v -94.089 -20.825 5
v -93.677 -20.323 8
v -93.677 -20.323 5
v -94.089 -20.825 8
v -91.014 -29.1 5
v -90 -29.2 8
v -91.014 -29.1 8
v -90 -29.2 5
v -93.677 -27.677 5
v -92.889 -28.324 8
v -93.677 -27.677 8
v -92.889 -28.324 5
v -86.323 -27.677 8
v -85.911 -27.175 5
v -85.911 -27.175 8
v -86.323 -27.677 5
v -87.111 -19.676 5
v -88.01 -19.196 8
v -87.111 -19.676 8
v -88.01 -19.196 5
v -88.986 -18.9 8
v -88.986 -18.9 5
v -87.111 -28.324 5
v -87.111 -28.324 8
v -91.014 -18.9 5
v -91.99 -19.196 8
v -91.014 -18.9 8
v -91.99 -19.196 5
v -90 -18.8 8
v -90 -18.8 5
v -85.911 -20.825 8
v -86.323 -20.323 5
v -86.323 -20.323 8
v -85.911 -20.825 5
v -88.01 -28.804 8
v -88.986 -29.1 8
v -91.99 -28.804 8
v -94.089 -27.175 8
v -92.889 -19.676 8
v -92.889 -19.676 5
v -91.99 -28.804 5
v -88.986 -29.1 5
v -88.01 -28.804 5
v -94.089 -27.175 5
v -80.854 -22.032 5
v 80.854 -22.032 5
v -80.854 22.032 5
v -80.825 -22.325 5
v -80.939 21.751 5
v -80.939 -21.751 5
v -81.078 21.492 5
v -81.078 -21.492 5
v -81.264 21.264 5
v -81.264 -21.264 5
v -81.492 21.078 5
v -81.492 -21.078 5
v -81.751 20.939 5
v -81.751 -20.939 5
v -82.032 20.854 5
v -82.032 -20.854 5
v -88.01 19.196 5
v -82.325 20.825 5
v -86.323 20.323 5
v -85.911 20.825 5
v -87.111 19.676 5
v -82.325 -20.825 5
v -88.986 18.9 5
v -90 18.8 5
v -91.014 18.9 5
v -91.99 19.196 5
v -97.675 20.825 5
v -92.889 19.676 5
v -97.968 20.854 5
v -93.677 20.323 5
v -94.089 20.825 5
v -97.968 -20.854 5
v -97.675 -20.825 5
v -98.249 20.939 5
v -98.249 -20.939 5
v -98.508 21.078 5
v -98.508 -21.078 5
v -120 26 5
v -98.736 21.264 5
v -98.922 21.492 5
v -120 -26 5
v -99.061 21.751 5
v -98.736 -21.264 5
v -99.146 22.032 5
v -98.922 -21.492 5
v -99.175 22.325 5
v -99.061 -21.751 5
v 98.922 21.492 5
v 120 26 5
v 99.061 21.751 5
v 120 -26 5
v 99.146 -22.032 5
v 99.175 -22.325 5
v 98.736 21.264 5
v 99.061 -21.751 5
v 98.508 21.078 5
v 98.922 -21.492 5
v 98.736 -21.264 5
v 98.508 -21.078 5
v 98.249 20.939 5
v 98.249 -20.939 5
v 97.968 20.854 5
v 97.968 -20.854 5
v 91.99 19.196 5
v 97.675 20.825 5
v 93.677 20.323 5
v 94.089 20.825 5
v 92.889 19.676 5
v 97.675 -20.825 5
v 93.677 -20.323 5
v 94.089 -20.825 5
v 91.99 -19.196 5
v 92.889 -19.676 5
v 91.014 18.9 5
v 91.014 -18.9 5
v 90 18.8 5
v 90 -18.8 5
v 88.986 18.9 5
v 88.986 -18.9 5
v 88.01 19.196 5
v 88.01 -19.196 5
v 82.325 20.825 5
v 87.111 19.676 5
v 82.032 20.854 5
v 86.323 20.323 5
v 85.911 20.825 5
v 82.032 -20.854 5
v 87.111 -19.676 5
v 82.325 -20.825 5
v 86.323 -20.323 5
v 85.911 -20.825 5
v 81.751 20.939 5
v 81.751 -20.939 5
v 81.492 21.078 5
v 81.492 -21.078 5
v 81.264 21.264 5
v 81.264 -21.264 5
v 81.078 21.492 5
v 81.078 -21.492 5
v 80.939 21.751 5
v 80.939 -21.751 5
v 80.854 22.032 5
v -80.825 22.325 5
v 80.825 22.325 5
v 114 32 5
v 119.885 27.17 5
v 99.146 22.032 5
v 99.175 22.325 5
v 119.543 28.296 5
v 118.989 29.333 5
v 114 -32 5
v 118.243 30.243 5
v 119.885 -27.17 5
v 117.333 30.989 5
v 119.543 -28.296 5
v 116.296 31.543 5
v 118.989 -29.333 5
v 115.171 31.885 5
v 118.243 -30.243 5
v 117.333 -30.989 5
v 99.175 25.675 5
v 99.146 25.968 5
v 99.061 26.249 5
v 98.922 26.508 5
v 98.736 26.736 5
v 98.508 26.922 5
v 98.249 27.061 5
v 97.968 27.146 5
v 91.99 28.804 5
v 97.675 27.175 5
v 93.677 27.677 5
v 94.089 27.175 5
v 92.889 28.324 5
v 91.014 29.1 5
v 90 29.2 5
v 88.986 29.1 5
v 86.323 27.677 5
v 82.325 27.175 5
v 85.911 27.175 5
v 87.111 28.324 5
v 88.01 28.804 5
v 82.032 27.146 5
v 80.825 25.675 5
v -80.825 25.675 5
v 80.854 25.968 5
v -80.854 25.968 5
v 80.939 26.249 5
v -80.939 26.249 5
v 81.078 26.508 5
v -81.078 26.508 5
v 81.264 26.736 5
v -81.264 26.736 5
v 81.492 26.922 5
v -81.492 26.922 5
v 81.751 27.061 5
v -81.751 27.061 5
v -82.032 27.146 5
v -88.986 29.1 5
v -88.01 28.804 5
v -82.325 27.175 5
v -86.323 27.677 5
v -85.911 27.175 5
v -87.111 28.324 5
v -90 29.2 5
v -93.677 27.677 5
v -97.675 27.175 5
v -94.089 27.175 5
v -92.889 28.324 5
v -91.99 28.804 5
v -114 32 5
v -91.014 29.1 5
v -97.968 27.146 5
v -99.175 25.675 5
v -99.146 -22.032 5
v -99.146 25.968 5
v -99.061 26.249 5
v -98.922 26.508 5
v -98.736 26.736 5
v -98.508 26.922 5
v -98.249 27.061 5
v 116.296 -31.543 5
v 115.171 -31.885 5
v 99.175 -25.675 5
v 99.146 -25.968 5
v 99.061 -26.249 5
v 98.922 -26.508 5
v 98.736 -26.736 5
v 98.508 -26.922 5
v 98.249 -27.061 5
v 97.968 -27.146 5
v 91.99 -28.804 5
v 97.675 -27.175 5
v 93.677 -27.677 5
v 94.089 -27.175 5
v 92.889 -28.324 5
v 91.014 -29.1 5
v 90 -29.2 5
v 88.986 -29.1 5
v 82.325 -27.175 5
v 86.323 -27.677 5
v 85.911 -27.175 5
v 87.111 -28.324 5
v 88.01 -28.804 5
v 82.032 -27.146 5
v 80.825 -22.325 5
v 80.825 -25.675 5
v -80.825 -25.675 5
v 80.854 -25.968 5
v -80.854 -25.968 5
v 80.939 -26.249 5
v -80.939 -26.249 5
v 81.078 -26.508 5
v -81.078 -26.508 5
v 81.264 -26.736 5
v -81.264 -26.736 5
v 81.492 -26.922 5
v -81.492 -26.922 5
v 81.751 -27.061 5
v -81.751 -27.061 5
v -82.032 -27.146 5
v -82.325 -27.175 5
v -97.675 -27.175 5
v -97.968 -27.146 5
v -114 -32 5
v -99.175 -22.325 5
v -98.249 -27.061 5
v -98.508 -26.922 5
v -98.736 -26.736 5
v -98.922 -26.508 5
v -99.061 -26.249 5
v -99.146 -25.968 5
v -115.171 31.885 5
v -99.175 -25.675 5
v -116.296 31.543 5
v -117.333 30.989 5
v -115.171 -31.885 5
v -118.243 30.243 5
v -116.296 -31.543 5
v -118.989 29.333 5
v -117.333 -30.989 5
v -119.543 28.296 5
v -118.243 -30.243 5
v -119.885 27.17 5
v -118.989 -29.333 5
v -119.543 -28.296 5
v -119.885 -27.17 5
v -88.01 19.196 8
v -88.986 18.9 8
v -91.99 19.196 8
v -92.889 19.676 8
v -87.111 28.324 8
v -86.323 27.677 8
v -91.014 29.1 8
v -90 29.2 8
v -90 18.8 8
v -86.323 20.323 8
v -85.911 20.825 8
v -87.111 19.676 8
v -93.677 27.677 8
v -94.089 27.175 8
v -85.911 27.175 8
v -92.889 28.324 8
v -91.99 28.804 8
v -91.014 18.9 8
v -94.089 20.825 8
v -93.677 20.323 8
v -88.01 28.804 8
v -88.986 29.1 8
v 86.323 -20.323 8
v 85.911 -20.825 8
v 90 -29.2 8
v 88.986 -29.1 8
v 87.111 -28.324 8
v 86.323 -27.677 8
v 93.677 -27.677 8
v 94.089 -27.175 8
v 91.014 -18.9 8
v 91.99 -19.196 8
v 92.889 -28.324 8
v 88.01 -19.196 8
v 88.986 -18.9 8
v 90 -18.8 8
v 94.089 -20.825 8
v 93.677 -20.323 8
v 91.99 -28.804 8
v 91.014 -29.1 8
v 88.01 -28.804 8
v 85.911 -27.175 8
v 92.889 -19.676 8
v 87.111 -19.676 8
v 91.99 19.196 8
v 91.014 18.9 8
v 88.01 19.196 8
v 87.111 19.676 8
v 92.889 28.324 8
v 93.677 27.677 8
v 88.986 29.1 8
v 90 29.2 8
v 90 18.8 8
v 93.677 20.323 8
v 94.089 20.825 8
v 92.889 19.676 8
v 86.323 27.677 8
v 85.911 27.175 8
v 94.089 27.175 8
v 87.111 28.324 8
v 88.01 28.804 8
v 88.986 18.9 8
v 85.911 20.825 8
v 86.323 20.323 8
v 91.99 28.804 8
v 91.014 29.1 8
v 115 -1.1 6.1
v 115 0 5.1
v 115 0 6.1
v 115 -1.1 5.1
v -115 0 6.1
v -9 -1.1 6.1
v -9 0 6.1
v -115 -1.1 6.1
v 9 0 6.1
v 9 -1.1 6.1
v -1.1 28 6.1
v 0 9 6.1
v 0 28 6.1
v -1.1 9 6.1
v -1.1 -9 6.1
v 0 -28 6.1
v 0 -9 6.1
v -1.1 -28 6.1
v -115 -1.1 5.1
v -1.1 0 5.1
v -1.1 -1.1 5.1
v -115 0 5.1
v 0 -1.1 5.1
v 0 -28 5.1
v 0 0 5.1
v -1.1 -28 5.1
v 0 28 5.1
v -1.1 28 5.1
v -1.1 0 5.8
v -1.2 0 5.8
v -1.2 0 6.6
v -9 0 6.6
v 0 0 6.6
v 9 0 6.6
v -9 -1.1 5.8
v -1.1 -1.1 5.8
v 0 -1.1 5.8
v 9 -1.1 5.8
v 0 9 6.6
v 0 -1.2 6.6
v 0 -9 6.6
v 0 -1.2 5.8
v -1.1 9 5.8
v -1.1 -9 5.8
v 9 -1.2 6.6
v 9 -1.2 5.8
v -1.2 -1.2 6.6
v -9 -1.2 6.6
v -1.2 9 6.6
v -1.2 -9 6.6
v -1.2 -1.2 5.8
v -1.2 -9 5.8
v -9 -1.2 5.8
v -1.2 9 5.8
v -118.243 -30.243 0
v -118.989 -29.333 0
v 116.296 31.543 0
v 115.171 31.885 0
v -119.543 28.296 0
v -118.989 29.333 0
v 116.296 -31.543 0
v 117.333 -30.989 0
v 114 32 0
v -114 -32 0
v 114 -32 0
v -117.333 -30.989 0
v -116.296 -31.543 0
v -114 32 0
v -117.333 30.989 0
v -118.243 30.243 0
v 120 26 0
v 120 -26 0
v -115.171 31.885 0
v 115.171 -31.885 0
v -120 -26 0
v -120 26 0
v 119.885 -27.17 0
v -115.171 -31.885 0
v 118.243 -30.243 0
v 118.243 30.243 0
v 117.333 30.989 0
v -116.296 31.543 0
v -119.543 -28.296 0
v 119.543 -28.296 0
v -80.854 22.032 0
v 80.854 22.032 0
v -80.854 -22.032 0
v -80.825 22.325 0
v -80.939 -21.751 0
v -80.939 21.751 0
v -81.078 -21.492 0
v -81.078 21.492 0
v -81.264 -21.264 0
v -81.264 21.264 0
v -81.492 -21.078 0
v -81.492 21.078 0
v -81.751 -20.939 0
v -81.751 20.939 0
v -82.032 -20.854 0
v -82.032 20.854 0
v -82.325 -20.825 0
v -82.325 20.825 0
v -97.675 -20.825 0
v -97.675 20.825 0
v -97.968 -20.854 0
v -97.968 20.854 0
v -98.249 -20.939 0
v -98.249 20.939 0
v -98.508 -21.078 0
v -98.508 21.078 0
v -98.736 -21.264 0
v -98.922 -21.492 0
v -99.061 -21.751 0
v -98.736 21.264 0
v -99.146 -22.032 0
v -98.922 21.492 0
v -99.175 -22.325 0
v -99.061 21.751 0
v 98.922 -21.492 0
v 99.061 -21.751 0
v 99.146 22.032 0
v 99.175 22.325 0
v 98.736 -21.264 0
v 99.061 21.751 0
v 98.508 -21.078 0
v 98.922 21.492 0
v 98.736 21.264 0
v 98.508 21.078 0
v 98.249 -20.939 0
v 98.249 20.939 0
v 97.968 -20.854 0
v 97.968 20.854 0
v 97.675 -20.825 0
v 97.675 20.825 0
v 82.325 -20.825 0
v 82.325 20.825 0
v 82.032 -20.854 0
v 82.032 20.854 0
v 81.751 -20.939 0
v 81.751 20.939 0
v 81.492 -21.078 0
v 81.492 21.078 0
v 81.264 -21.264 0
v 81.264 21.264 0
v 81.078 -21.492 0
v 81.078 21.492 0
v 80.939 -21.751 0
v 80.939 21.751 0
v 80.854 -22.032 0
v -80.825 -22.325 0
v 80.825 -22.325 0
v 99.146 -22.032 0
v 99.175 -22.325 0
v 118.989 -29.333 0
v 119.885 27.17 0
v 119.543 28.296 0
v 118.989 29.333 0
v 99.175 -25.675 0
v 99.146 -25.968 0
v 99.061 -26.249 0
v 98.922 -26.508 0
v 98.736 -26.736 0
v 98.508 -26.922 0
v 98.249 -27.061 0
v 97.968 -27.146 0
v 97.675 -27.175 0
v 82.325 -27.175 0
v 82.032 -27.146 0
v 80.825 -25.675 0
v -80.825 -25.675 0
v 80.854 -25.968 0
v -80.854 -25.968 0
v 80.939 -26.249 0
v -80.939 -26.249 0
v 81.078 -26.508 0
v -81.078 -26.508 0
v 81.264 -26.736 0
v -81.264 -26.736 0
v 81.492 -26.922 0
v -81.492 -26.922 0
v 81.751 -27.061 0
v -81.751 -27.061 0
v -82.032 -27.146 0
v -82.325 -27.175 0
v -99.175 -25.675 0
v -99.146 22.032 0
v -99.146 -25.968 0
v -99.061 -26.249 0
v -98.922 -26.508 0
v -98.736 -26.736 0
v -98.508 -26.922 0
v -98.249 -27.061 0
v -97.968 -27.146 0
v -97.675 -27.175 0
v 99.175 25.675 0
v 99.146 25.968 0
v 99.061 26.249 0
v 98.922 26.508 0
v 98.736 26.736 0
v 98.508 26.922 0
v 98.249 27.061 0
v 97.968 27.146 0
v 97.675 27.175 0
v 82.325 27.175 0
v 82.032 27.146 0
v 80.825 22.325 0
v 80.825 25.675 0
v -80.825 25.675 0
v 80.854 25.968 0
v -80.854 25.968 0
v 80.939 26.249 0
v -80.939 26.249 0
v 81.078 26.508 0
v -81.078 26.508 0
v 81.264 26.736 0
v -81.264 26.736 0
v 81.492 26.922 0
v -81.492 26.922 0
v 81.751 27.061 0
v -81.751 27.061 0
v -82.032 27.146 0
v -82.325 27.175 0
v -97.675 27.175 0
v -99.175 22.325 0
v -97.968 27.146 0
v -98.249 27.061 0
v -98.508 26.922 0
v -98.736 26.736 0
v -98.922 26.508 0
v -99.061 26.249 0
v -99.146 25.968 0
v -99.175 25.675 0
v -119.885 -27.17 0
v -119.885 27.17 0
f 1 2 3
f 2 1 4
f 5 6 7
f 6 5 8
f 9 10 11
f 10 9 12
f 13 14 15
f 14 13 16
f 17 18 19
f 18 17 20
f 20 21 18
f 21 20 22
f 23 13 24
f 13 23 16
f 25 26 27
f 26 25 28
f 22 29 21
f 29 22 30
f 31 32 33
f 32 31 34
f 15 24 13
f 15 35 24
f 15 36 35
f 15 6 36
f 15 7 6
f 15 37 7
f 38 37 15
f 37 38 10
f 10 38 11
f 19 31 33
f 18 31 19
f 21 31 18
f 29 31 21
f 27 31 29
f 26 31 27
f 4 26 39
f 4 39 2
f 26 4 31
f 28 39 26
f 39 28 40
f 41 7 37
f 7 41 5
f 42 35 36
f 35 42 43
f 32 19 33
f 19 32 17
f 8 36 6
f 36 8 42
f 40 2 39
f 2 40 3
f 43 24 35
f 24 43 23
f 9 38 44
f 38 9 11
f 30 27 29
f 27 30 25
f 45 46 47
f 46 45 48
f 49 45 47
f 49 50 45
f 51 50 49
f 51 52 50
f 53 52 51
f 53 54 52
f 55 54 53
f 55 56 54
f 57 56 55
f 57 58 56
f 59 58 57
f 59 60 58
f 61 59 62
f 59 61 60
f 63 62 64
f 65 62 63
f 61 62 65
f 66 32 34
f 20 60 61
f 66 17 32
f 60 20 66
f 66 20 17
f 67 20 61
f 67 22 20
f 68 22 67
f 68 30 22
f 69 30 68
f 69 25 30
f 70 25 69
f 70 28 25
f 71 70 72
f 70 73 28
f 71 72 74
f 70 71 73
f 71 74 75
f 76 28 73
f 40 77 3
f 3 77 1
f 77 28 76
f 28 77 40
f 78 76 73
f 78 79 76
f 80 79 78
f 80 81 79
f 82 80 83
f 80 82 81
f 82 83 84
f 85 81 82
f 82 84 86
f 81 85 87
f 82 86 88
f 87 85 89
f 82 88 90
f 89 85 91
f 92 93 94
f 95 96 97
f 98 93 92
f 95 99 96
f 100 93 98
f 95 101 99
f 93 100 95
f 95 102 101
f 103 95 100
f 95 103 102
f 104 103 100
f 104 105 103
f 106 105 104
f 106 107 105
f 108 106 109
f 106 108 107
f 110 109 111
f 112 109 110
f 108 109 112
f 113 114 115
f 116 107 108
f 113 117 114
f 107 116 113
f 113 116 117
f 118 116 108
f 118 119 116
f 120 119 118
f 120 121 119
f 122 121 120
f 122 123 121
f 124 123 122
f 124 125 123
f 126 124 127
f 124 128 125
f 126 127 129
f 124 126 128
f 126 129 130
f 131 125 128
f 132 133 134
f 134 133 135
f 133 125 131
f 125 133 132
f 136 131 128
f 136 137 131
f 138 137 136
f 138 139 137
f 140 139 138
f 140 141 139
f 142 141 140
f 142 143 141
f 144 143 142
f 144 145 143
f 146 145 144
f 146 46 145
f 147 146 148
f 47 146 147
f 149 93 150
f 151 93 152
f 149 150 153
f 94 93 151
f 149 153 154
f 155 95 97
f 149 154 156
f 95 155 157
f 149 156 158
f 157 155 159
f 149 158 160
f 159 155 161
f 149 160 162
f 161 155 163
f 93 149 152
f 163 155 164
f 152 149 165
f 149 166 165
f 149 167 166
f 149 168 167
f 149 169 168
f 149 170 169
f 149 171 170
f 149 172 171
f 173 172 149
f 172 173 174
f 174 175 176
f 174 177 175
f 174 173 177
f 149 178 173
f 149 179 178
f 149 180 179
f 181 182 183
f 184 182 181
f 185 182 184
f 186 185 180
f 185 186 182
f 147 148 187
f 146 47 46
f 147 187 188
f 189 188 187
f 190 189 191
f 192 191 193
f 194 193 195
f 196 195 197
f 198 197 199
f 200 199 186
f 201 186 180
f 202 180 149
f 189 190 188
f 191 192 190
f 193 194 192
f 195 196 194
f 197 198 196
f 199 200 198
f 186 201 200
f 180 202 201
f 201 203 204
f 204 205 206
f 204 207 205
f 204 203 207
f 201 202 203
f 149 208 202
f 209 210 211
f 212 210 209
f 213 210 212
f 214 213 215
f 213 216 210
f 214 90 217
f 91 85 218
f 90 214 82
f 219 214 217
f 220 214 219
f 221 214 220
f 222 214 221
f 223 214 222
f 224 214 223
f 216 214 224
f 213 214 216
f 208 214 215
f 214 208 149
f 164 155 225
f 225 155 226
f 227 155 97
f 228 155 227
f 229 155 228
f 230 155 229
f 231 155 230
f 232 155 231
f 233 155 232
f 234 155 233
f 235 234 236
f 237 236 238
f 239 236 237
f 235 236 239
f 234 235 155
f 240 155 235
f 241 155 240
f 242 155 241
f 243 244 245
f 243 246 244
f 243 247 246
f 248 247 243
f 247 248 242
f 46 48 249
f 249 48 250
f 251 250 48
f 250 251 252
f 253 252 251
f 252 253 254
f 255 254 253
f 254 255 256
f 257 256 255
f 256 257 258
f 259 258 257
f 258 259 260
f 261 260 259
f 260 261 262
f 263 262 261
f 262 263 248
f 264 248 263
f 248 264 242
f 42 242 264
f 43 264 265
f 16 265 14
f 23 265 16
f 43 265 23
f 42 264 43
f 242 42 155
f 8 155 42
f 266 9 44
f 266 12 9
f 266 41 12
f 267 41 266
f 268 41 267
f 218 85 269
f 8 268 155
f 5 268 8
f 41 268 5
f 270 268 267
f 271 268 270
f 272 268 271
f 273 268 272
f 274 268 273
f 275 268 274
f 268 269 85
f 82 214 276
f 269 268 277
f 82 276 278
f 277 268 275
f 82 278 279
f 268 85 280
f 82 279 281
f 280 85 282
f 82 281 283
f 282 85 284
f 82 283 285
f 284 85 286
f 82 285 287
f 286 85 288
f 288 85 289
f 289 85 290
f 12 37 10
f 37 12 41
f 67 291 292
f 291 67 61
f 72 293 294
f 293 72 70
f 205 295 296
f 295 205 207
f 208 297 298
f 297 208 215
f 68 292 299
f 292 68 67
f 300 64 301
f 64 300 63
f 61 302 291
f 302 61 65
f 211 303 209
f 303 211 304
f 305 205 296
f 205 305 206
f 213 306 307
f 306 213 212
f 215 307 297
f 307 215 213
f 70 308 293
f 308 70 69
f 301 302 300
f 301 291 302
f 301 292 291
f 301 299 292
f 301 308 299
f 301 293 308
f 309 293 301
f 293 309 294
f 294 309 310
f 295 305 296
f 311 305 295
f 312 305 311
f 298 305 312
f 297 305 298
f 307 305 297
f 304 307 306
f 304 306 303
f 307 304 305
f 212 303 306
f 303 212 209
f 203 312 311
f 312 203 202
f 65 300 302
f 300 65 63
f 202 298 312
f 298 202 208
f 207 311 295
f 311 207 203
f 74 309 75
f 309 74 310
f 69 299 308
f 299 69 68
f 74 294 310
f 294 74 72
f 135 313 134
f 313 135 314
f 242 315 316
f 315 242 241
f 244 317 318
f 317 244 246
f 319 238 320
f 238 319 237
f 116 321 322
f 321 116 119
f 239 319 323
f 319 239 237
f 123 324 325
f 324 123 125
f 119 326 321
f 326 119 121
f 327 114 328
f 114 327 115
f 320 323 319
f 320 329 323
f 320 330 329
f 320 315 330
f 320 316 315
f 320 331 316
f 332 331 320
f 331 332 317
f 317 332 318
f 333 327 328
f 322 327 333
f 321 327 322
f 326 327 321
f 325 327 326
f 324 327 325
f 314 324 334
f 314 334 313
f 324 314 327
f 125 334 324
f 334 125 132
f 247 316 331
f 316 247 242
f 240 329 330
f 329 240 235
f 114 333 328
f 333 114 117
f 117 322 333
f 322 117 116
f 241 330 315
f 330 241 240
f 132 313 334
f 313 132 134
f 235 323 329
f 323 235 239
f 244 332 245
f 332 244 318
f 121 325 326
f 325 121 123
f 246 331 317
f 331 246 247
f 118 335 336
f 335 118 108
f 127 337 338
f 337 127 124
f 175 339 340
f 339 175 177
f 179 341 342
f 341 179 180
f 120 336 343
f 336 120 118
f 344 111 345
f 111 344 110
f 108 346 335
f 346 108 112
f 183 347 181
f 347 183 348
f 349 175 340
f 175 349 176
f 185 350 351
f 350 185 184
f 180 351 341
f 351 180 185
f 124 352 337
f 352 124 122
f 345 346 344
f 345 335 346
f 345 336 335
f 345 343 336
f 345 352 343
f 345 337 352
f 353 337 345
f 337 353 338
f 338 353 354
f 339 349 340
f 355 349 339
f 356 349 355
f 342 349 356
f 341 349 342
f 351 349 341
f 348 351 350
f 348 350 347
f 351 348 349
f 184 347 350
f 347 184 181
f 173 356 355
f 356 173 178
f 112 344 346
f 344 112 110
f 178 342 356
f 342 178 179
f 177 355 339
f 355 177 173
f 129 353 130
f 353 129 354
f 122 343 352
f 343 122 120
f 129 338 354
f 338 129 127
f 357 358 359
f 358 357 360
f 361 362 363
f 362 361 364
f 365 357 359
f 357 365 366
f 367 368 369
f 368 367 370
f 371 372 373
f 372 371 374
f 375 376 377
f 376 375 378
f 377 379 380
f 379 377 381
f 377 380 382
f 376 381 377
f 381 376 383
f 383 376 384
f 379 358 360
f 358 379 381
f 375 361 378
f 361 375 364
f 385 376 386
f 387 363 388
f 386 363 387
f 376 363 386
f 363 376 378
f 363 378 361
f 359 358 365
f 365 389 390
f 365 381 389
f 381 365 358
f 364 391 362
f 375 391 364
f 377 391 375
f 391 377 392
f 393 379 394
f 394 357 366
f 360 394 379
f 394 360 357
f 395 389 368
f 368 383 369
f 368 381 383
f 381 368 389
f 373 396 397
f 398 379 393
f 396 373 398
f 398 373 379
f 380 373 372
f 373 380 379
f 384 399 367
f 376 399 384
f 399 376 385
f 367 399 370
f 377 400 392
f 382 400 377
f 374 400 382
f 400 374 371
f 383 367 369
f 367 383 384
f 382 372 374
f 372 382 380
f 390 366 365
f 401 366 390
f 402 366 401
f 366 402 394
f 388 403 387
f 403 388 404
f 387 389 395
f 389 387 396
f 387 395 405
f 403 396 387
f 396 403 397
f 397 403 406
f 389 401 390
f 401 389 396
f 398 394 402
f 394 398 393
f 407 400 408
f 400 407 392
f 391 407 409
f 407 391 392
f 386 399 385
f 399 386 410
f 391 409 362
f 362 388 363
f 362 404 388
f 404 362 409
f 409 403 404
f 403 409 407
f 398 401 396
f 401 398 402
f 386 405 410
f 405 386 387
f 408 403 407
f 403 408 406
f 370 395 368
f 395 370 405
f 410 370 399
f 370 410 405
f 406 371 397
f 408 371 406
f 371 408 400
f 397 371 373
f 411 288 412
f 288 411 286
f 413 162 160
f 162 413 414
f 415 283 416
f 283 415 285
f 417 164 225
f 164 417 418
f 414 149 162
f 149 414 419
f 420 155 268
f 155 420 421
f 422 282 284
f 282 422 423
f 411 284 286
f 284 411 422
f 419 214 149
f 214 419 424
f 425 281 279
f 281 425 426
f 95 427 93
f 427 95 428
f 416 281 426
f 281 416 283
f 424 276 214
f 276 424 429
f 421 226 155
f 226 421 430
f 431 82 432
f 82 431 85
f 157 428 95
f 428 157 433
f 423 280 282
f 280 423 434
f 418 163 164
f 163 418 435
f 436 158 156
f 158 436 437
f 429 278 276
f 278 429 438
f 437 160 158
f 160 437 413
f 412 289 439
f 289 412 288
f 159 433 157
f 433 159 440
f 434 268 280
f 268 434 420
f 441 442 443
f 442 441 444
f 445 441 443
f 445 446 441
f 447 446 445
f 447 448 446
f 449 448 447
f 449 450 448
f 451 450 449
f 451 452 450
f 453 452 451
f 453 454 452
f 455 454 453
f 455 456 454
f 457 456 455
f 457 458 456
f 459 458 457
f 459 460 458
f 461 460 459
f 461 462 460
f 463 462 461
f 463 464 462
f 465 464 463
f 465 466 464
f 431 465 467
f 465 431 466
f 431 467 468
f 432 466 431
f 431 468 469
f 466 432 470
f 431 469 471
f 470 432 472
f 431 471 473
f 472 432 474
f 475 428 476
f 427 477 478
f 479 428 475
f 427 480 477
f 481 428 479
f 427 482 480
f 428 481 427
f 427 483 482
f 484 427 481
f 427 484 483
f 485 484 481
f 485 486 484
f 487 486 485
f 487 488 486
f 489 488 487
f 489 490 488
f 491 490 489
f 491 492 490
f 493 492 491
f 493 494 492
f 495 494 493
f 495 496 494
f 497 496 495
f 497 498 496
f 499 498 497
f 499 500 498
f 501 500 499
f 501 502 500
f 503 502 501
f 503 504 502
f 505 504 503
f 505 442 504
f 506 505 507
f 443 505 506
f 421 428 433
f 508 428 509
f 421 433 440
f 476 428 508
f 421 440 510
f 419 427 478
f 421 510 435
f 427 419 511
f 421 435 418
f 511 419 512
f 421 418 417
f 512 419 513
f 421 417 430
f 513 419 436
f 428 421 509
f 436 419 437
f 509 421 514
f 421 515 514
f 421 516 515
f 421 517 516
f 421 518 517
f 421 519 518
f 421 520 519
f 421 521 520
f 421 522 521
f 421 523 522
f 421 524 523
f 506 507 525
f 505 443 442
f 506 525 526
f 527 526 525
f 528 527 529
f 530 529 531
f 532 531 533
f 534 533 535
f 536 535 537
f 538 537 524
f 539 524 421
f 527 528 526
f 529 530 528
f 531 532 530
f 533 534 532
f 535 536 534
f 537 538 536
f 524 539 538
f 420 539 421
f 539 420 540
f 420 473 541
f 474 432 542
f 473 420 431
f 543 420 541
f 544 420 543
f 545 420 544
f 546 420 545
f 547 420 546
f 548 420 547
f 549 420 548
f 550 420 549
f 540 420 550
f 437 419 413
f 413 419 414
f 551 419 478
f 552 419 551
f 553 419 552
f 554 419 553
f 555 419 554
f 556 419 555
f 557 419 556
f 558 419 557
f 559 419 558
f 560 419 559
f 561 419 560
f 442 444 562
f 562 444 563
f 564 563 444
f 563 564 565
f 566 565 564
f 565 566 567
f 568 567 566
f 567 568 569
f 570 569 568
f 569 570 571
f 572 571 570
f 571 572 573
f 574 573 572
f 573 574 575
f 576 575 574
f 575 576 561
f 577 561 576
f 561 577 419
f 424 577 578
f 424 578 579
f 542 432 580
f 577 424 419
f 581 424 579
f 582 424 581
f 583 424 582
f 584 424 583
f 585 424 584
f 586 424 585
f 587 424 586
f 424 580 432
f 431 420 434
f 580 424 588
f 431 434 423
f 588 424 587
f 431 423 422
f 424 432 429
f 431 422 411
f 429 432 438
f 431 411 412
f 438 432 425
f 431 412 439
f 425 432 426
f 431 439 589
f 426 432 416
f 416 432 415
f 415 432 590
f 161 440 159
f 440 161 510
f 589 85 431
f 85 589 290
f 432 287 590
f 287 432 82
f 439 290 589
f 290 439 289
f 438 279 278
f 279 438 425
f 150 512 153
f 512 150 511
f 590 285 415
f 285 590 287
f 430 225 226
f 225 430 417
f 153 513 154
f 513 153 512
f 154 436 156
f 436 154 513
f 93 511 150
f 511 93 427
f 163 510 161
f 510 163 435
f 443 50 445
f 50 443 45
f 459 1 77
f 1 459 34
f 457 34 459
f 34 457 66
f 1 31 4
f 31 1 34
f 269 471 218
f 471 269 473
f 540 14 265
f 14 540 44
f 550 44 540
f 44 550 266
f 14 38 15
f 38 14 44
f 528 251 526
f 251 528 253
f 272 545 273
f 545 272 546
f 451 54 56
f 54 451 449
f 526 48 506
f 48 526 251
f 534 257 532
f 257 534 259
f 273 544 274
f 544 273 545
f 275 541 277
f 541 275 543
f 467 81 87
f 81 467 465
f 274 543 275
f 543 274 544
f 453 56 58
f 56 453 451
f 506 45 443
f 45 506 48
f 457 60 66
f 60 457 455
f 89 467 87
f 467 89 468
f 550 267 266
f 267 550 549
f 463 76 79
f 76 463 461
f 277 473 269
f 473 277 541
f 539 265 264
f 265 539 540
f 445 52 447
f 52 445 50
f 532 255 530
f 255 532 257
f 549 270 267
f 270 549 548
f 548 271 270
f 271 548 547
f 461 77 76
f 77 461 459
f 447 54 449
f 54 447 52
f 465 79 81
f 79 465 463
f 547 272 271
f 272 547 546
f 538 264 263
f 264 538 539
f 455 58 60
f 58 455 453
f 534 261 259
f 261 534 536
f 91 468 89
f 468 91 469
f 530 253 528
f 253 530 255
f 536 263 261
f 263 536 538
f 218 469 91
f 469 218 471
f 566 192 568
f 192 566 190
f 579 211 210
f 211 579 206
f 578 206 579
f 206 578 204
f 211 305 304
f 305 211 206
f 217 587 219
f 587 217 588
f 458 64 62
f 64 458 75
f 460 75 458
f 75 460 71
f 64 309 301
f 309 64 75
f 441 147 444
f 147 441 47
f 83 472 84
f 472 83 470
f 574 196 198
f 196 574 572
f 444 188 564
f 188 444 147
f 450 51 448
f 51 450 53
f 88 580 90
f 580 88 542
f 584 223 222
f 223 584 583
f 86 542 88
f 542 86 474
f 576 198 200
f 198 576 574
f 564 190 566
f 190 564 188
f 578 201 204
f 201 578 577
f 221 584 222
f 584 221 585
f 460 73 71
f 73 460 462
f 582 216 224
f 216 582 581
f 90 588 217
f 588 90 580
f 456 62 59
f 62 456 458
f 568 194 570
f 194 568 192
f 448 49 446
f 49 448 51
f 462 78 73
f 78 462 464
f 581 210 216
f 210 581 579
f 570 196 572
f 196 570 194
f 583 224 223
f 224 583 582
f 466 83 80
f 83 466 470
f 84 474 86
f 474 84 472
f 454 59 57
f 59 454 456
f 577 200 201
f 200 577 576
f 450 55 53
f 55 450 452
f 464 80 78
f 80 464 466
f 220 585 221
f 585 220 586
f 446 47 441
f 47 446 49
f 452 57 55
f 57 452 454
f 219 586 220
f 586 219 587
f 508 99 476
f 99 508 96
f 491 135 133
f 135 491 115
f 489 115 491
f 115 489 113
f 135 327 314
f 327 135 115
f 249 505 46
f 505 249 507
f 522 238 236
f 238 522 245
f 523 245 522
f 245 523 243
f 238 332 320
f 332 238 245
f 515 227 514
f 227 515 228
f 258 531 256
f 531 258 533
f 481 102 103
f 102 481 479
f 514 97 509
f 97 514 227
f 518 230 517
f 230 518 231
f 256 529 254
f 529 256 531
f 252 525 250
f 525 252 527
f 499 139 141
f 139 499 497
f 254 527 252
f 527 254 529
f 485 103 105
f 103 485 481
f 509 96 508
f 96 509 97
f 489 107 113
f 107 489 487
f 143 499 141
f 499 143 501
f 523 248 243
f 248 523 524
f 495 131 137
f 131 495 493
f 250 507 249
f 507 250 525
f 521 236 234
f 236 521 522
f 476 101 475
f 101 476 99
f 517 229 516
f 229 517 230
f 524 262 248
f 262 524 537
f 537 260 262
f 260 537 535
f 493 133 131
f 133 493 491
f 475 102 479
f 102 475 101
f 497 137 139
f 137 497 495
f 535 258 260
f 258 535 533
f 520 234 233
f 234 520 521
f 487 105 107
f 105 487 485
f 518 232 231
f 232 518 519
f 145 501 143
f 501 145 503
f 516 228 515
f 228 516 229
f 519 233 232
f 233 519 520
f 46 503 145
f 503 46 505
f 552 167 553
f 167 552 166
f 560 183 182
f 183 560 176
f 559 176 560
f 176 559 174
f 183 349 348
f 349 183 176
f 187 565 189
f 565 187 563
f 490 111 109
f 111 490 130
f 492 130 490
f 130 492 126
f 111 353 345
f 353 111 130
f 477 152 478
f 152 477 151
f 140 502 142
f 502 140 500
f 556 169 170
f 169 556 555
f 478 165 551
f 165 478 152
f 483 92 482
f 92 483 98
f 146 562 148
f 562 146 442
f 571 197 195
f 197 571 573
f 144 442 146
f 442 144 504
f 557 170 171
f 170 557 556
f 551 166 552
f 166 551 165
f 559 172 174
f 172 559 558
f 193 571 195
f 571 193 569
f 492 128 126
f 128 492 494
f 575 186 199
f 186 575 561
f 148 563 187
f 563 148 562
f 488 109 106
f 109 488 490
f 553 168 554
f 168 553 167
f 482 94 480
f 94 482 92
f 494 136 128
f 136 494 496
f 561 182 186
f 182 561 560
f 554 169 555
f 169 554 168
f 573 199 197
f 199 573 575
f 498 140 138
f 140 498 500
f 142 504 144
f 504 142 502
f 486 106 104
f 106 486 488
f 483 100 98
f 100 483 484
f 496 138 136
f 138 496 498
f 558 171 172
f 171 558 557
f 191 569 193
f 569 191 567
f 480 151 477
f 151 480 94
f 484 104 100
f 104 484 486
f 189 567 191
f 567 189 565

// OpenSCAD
// file: s1_parameters.scad
// Shared S1 prototype parameters.
// Units are millimeters. Values are provisional fit/geometry defaults.

$fn = 32;

s1_length_over_coupler_faces = 320;
s1_structural_deck_length = 280;
s1_sled_width = 72;
s1_sled_height = 14;
s1_deck_height_above_g0 = 30;
s1_wall_thickness = 2.4;
s1_corner_radius = 6;
s1_printer_tolerance = 0.35;
s1_min_feature = 1.2;

s1_module_length = 240;
s1_module_width = 64;
s1_module_interface_height = 5;
s1_module_corner_radius = 7;

s1_mount_x = 90;
s1_mount_y = 24;
s1_mount_pin_diameter = 5;
s1_mount_clearance = 0.35;
s1_latch_slot_length = 18;
s1_latch_slot_width = 6;

s1_coupler_pivot_spacing = 280;
s1_coupler_drawbar_length = 28;
s1_coupler_pivot_diameter = 8;
s1_coupler_yaw_normal_deg = 15;
s1_coupler_yaw_hard_stop_deg = 18;
s1_coupler_vertical_play = 1.5;

s1_ballast_pocket_length = 36;
s1_ballast_pocket_width = 18;
s1_ballast_pocket_depth = 6;
s1_ballast_channel_length = 108;
s1_ballast_channel_width = 14;
s1_ballast_channel_depth = 5;

s1_split_key_length = 14;
s1_split_key_width = 8;
s1_split_key_height = 5;
s1_split_plane_x = 0;

s1_support_node_x = 180;
s1_support_node_y = 50;

s1_bed_x = 220;
s1_bed_y = 220;

module rounded_box(size, radius = 3) {
  r = min(radius, min(size[0], size[1]) / 2 - 0.01);
  hull() {
    for (x = [-size[0] / 2 + r, size[0] / 2 - r])
      for (y = [-size[1] / 2 + r, size[1] / 2 - r])
        translate([x, y, 0])
          cylinder(h = size[2], r = r);
  }
}

module datum_cross(size = 18, height = 0.9, width = 1.4) {
  translate([0, -width / 2, 0]) cube([size, width, height], center = true);
  translate([-width / 2, 0, 0]) cube([width, size, height], center = true);
}

module centerline_marks(length, width, z, height = 0.8) {
  translate([0, -0.55, z]) cube([length, 1.1, height], center = true);
  translate([-0.55, 0, z]) cube([1.1, width, height], center = true);
}

module module_attachment_positions() {
  for (x = [-s1_mount_x, s1_mount_x])
    for (y = [-s1_mount_y, s1_mount_y])
      translate([x, y, 0]) children();
}

module support_node_positions() {
  for (x = [-s1_support_node_x / 2, s1_support_node_x / 2])
    for (y = [-s1_support_node_y / 2, s1_support_node_y / 2])
      translate([x, y, 0]) children();
}

module ballast_pocket_positions() {
  for (x = [-70, 70])
    for (y = [-20, 20])
      translate([x, y, 0]) children();
}

module mount_pin_holes(height = 30, clearance = s1_mount_clearance) {
  module_attachment_positions()
    cylinder(h = height, r = s1_mount_pin_diameter / 2 + clearance, center = true);
}

module latch_slots(height = 20, clearance = s1_mount_clearance) {
  module_attachment_positions()
    translate([0, 0, 0])
      rounded_box([s1_latch_slot_length + clearance, s1_latch_slot_width + clearance, height], 1.5);
}

module module_interface_underside(height = 4) {
  module_attachment_positions()
    cylinder(h = height, r = s1_mount_pin_diameter / 2, center = false);
}

module split_front_clip(length, width = 180, height = 180) {
  translate([length / 4 + 0.02, 0, height / 2 - 20])
    cube([length / 2 + 0.04, width, height], center = true);
}

module split_rear_clip(length, width = 180, height = 180) {
  translate([-length / 4 - 0.02, 0, height / 2 - 20])
    cube([length / 2 + 0.04, width, height], center = true);
}

module split_alignment_male(z = 2, clearance = 0) {
  for (y = [-18, 18])
    translate([
      -s1_split_key_length + clearance,
      y - s1_split_key_width / 2 + clearance,
      z
    ])
      cube([
        s1_split_key_length + 10,
        s1_split_key_width - 2 * clearance,
        s1_split_key_height - 2 * clearance
      ]);
}

module split_alignment_receiver(z = 2) {
  split_alignment_male(z = z - s1_printer_tolerance / 2, clearance = -s1_printer_tolerance);
}

module split_alignment_sockets(side = "front", z = 0.4) {
  // Split halves use flat, non-cosmetic joining faces for watertight STL output.
  // Loose alignment keys are printed separately and bonded across the underside seam.
}

module loose_alignment_keys() {
  for (y = [-8, 8])
    translate([0, y, 0])
      rounded_box([44, s1_split_key_width - 0.4, s1_split_key_height - 0.4], 1.2);
}

module module_split_keys_front(z = 2) {
  split_alignment_male(z = z);
}

module module_split_keys_rear(z = 2) {
  split_alignment_receiver(z = z);
}

module aerodynamic_pod_shell(length, width, height, nose = 24, roof_inset = 10, radius = 7) {
  hull() {
    rounded_box([length, width, 3], radius);
    translate([0, 0, height - 3])
      rounded_box([length - 2 * nose, width - roof_inset, 3], max(2, radius - 2));
  }
}

module side_panel_breaks(length, width, z, height = 1.0) {
  for (x = [-length / 4, 0, length / 4])
    translate([x, width / 2 - 8, z])
      cube([1.2, 1.4, height], center = true);
  for (x = [-length / 4, 0, length / 4])
    translate([x, -width / 2 + 8, z])
      cube([1.2, 1.4, height], center = true);
}

module cg_marker(z, size = 16) {
  translate([0, 0, z]) datum_cross(size = size, height = 0.8, width = 1.2);
}

module ballast_blocks(z = 5) {
  ballast_pocket_positions()
    translate([0, 0, z])
      rounded_box([s1_ballast_pocket_length - 5, s1_ballast_pocket_width - 4, 6], 2);
}

module module_half(part, length, width, height) {
  if (part == "front")
    split_front_clip(length, width, height) children();
  else if (part == "rear")
    split_rear_clip(length, width, height) children();
  else
    children();
}
// main file
include <s1_parameters.scad>

build_part = "full";

module s1_interface_plate_full() {
  difference() {
    union() {
      rounded_box([s1_module_length, s1_module_width, s1_module_interface_height], 6);
      module_attachment_positions()
        translate([0, 0, s1_module_interface_height])
          cylinder(h = 3, r = 5.2);
      translate([0, 0, s1_module_interface_height + 0.6])
        centerline_marks(s1_module_length - 10, s1_module_width - 8, 0, height = 1.0);
      cg_marker(s1_module_interface_height + 1.2, 18);
    }
    mount_pin_holes(height = 18);
    latch_slots(height = 12);
  }
}

module s1_interface_plate_part() {
  if (build_part == "front")
    difference() {
      render(convexity = 10) intersection() {
        s1_interface_plate_full();
        split_front_clip(s1_module_length, 100, 60);
      }
      split_alignment_sockets("front", z = 0.4);
    }
  else if (build_part == "rear")
    difference() {
      render(convexity = 10) intersection() {
        s1_interface_plate_full();
        split_rear_clip(s1_module_length, 100, 60);
      }
      split_alignment_sockets("rear", z = 0.4);
    }
  else
    s1_interface_plate_full();
}

s1_interface_plate_part();
